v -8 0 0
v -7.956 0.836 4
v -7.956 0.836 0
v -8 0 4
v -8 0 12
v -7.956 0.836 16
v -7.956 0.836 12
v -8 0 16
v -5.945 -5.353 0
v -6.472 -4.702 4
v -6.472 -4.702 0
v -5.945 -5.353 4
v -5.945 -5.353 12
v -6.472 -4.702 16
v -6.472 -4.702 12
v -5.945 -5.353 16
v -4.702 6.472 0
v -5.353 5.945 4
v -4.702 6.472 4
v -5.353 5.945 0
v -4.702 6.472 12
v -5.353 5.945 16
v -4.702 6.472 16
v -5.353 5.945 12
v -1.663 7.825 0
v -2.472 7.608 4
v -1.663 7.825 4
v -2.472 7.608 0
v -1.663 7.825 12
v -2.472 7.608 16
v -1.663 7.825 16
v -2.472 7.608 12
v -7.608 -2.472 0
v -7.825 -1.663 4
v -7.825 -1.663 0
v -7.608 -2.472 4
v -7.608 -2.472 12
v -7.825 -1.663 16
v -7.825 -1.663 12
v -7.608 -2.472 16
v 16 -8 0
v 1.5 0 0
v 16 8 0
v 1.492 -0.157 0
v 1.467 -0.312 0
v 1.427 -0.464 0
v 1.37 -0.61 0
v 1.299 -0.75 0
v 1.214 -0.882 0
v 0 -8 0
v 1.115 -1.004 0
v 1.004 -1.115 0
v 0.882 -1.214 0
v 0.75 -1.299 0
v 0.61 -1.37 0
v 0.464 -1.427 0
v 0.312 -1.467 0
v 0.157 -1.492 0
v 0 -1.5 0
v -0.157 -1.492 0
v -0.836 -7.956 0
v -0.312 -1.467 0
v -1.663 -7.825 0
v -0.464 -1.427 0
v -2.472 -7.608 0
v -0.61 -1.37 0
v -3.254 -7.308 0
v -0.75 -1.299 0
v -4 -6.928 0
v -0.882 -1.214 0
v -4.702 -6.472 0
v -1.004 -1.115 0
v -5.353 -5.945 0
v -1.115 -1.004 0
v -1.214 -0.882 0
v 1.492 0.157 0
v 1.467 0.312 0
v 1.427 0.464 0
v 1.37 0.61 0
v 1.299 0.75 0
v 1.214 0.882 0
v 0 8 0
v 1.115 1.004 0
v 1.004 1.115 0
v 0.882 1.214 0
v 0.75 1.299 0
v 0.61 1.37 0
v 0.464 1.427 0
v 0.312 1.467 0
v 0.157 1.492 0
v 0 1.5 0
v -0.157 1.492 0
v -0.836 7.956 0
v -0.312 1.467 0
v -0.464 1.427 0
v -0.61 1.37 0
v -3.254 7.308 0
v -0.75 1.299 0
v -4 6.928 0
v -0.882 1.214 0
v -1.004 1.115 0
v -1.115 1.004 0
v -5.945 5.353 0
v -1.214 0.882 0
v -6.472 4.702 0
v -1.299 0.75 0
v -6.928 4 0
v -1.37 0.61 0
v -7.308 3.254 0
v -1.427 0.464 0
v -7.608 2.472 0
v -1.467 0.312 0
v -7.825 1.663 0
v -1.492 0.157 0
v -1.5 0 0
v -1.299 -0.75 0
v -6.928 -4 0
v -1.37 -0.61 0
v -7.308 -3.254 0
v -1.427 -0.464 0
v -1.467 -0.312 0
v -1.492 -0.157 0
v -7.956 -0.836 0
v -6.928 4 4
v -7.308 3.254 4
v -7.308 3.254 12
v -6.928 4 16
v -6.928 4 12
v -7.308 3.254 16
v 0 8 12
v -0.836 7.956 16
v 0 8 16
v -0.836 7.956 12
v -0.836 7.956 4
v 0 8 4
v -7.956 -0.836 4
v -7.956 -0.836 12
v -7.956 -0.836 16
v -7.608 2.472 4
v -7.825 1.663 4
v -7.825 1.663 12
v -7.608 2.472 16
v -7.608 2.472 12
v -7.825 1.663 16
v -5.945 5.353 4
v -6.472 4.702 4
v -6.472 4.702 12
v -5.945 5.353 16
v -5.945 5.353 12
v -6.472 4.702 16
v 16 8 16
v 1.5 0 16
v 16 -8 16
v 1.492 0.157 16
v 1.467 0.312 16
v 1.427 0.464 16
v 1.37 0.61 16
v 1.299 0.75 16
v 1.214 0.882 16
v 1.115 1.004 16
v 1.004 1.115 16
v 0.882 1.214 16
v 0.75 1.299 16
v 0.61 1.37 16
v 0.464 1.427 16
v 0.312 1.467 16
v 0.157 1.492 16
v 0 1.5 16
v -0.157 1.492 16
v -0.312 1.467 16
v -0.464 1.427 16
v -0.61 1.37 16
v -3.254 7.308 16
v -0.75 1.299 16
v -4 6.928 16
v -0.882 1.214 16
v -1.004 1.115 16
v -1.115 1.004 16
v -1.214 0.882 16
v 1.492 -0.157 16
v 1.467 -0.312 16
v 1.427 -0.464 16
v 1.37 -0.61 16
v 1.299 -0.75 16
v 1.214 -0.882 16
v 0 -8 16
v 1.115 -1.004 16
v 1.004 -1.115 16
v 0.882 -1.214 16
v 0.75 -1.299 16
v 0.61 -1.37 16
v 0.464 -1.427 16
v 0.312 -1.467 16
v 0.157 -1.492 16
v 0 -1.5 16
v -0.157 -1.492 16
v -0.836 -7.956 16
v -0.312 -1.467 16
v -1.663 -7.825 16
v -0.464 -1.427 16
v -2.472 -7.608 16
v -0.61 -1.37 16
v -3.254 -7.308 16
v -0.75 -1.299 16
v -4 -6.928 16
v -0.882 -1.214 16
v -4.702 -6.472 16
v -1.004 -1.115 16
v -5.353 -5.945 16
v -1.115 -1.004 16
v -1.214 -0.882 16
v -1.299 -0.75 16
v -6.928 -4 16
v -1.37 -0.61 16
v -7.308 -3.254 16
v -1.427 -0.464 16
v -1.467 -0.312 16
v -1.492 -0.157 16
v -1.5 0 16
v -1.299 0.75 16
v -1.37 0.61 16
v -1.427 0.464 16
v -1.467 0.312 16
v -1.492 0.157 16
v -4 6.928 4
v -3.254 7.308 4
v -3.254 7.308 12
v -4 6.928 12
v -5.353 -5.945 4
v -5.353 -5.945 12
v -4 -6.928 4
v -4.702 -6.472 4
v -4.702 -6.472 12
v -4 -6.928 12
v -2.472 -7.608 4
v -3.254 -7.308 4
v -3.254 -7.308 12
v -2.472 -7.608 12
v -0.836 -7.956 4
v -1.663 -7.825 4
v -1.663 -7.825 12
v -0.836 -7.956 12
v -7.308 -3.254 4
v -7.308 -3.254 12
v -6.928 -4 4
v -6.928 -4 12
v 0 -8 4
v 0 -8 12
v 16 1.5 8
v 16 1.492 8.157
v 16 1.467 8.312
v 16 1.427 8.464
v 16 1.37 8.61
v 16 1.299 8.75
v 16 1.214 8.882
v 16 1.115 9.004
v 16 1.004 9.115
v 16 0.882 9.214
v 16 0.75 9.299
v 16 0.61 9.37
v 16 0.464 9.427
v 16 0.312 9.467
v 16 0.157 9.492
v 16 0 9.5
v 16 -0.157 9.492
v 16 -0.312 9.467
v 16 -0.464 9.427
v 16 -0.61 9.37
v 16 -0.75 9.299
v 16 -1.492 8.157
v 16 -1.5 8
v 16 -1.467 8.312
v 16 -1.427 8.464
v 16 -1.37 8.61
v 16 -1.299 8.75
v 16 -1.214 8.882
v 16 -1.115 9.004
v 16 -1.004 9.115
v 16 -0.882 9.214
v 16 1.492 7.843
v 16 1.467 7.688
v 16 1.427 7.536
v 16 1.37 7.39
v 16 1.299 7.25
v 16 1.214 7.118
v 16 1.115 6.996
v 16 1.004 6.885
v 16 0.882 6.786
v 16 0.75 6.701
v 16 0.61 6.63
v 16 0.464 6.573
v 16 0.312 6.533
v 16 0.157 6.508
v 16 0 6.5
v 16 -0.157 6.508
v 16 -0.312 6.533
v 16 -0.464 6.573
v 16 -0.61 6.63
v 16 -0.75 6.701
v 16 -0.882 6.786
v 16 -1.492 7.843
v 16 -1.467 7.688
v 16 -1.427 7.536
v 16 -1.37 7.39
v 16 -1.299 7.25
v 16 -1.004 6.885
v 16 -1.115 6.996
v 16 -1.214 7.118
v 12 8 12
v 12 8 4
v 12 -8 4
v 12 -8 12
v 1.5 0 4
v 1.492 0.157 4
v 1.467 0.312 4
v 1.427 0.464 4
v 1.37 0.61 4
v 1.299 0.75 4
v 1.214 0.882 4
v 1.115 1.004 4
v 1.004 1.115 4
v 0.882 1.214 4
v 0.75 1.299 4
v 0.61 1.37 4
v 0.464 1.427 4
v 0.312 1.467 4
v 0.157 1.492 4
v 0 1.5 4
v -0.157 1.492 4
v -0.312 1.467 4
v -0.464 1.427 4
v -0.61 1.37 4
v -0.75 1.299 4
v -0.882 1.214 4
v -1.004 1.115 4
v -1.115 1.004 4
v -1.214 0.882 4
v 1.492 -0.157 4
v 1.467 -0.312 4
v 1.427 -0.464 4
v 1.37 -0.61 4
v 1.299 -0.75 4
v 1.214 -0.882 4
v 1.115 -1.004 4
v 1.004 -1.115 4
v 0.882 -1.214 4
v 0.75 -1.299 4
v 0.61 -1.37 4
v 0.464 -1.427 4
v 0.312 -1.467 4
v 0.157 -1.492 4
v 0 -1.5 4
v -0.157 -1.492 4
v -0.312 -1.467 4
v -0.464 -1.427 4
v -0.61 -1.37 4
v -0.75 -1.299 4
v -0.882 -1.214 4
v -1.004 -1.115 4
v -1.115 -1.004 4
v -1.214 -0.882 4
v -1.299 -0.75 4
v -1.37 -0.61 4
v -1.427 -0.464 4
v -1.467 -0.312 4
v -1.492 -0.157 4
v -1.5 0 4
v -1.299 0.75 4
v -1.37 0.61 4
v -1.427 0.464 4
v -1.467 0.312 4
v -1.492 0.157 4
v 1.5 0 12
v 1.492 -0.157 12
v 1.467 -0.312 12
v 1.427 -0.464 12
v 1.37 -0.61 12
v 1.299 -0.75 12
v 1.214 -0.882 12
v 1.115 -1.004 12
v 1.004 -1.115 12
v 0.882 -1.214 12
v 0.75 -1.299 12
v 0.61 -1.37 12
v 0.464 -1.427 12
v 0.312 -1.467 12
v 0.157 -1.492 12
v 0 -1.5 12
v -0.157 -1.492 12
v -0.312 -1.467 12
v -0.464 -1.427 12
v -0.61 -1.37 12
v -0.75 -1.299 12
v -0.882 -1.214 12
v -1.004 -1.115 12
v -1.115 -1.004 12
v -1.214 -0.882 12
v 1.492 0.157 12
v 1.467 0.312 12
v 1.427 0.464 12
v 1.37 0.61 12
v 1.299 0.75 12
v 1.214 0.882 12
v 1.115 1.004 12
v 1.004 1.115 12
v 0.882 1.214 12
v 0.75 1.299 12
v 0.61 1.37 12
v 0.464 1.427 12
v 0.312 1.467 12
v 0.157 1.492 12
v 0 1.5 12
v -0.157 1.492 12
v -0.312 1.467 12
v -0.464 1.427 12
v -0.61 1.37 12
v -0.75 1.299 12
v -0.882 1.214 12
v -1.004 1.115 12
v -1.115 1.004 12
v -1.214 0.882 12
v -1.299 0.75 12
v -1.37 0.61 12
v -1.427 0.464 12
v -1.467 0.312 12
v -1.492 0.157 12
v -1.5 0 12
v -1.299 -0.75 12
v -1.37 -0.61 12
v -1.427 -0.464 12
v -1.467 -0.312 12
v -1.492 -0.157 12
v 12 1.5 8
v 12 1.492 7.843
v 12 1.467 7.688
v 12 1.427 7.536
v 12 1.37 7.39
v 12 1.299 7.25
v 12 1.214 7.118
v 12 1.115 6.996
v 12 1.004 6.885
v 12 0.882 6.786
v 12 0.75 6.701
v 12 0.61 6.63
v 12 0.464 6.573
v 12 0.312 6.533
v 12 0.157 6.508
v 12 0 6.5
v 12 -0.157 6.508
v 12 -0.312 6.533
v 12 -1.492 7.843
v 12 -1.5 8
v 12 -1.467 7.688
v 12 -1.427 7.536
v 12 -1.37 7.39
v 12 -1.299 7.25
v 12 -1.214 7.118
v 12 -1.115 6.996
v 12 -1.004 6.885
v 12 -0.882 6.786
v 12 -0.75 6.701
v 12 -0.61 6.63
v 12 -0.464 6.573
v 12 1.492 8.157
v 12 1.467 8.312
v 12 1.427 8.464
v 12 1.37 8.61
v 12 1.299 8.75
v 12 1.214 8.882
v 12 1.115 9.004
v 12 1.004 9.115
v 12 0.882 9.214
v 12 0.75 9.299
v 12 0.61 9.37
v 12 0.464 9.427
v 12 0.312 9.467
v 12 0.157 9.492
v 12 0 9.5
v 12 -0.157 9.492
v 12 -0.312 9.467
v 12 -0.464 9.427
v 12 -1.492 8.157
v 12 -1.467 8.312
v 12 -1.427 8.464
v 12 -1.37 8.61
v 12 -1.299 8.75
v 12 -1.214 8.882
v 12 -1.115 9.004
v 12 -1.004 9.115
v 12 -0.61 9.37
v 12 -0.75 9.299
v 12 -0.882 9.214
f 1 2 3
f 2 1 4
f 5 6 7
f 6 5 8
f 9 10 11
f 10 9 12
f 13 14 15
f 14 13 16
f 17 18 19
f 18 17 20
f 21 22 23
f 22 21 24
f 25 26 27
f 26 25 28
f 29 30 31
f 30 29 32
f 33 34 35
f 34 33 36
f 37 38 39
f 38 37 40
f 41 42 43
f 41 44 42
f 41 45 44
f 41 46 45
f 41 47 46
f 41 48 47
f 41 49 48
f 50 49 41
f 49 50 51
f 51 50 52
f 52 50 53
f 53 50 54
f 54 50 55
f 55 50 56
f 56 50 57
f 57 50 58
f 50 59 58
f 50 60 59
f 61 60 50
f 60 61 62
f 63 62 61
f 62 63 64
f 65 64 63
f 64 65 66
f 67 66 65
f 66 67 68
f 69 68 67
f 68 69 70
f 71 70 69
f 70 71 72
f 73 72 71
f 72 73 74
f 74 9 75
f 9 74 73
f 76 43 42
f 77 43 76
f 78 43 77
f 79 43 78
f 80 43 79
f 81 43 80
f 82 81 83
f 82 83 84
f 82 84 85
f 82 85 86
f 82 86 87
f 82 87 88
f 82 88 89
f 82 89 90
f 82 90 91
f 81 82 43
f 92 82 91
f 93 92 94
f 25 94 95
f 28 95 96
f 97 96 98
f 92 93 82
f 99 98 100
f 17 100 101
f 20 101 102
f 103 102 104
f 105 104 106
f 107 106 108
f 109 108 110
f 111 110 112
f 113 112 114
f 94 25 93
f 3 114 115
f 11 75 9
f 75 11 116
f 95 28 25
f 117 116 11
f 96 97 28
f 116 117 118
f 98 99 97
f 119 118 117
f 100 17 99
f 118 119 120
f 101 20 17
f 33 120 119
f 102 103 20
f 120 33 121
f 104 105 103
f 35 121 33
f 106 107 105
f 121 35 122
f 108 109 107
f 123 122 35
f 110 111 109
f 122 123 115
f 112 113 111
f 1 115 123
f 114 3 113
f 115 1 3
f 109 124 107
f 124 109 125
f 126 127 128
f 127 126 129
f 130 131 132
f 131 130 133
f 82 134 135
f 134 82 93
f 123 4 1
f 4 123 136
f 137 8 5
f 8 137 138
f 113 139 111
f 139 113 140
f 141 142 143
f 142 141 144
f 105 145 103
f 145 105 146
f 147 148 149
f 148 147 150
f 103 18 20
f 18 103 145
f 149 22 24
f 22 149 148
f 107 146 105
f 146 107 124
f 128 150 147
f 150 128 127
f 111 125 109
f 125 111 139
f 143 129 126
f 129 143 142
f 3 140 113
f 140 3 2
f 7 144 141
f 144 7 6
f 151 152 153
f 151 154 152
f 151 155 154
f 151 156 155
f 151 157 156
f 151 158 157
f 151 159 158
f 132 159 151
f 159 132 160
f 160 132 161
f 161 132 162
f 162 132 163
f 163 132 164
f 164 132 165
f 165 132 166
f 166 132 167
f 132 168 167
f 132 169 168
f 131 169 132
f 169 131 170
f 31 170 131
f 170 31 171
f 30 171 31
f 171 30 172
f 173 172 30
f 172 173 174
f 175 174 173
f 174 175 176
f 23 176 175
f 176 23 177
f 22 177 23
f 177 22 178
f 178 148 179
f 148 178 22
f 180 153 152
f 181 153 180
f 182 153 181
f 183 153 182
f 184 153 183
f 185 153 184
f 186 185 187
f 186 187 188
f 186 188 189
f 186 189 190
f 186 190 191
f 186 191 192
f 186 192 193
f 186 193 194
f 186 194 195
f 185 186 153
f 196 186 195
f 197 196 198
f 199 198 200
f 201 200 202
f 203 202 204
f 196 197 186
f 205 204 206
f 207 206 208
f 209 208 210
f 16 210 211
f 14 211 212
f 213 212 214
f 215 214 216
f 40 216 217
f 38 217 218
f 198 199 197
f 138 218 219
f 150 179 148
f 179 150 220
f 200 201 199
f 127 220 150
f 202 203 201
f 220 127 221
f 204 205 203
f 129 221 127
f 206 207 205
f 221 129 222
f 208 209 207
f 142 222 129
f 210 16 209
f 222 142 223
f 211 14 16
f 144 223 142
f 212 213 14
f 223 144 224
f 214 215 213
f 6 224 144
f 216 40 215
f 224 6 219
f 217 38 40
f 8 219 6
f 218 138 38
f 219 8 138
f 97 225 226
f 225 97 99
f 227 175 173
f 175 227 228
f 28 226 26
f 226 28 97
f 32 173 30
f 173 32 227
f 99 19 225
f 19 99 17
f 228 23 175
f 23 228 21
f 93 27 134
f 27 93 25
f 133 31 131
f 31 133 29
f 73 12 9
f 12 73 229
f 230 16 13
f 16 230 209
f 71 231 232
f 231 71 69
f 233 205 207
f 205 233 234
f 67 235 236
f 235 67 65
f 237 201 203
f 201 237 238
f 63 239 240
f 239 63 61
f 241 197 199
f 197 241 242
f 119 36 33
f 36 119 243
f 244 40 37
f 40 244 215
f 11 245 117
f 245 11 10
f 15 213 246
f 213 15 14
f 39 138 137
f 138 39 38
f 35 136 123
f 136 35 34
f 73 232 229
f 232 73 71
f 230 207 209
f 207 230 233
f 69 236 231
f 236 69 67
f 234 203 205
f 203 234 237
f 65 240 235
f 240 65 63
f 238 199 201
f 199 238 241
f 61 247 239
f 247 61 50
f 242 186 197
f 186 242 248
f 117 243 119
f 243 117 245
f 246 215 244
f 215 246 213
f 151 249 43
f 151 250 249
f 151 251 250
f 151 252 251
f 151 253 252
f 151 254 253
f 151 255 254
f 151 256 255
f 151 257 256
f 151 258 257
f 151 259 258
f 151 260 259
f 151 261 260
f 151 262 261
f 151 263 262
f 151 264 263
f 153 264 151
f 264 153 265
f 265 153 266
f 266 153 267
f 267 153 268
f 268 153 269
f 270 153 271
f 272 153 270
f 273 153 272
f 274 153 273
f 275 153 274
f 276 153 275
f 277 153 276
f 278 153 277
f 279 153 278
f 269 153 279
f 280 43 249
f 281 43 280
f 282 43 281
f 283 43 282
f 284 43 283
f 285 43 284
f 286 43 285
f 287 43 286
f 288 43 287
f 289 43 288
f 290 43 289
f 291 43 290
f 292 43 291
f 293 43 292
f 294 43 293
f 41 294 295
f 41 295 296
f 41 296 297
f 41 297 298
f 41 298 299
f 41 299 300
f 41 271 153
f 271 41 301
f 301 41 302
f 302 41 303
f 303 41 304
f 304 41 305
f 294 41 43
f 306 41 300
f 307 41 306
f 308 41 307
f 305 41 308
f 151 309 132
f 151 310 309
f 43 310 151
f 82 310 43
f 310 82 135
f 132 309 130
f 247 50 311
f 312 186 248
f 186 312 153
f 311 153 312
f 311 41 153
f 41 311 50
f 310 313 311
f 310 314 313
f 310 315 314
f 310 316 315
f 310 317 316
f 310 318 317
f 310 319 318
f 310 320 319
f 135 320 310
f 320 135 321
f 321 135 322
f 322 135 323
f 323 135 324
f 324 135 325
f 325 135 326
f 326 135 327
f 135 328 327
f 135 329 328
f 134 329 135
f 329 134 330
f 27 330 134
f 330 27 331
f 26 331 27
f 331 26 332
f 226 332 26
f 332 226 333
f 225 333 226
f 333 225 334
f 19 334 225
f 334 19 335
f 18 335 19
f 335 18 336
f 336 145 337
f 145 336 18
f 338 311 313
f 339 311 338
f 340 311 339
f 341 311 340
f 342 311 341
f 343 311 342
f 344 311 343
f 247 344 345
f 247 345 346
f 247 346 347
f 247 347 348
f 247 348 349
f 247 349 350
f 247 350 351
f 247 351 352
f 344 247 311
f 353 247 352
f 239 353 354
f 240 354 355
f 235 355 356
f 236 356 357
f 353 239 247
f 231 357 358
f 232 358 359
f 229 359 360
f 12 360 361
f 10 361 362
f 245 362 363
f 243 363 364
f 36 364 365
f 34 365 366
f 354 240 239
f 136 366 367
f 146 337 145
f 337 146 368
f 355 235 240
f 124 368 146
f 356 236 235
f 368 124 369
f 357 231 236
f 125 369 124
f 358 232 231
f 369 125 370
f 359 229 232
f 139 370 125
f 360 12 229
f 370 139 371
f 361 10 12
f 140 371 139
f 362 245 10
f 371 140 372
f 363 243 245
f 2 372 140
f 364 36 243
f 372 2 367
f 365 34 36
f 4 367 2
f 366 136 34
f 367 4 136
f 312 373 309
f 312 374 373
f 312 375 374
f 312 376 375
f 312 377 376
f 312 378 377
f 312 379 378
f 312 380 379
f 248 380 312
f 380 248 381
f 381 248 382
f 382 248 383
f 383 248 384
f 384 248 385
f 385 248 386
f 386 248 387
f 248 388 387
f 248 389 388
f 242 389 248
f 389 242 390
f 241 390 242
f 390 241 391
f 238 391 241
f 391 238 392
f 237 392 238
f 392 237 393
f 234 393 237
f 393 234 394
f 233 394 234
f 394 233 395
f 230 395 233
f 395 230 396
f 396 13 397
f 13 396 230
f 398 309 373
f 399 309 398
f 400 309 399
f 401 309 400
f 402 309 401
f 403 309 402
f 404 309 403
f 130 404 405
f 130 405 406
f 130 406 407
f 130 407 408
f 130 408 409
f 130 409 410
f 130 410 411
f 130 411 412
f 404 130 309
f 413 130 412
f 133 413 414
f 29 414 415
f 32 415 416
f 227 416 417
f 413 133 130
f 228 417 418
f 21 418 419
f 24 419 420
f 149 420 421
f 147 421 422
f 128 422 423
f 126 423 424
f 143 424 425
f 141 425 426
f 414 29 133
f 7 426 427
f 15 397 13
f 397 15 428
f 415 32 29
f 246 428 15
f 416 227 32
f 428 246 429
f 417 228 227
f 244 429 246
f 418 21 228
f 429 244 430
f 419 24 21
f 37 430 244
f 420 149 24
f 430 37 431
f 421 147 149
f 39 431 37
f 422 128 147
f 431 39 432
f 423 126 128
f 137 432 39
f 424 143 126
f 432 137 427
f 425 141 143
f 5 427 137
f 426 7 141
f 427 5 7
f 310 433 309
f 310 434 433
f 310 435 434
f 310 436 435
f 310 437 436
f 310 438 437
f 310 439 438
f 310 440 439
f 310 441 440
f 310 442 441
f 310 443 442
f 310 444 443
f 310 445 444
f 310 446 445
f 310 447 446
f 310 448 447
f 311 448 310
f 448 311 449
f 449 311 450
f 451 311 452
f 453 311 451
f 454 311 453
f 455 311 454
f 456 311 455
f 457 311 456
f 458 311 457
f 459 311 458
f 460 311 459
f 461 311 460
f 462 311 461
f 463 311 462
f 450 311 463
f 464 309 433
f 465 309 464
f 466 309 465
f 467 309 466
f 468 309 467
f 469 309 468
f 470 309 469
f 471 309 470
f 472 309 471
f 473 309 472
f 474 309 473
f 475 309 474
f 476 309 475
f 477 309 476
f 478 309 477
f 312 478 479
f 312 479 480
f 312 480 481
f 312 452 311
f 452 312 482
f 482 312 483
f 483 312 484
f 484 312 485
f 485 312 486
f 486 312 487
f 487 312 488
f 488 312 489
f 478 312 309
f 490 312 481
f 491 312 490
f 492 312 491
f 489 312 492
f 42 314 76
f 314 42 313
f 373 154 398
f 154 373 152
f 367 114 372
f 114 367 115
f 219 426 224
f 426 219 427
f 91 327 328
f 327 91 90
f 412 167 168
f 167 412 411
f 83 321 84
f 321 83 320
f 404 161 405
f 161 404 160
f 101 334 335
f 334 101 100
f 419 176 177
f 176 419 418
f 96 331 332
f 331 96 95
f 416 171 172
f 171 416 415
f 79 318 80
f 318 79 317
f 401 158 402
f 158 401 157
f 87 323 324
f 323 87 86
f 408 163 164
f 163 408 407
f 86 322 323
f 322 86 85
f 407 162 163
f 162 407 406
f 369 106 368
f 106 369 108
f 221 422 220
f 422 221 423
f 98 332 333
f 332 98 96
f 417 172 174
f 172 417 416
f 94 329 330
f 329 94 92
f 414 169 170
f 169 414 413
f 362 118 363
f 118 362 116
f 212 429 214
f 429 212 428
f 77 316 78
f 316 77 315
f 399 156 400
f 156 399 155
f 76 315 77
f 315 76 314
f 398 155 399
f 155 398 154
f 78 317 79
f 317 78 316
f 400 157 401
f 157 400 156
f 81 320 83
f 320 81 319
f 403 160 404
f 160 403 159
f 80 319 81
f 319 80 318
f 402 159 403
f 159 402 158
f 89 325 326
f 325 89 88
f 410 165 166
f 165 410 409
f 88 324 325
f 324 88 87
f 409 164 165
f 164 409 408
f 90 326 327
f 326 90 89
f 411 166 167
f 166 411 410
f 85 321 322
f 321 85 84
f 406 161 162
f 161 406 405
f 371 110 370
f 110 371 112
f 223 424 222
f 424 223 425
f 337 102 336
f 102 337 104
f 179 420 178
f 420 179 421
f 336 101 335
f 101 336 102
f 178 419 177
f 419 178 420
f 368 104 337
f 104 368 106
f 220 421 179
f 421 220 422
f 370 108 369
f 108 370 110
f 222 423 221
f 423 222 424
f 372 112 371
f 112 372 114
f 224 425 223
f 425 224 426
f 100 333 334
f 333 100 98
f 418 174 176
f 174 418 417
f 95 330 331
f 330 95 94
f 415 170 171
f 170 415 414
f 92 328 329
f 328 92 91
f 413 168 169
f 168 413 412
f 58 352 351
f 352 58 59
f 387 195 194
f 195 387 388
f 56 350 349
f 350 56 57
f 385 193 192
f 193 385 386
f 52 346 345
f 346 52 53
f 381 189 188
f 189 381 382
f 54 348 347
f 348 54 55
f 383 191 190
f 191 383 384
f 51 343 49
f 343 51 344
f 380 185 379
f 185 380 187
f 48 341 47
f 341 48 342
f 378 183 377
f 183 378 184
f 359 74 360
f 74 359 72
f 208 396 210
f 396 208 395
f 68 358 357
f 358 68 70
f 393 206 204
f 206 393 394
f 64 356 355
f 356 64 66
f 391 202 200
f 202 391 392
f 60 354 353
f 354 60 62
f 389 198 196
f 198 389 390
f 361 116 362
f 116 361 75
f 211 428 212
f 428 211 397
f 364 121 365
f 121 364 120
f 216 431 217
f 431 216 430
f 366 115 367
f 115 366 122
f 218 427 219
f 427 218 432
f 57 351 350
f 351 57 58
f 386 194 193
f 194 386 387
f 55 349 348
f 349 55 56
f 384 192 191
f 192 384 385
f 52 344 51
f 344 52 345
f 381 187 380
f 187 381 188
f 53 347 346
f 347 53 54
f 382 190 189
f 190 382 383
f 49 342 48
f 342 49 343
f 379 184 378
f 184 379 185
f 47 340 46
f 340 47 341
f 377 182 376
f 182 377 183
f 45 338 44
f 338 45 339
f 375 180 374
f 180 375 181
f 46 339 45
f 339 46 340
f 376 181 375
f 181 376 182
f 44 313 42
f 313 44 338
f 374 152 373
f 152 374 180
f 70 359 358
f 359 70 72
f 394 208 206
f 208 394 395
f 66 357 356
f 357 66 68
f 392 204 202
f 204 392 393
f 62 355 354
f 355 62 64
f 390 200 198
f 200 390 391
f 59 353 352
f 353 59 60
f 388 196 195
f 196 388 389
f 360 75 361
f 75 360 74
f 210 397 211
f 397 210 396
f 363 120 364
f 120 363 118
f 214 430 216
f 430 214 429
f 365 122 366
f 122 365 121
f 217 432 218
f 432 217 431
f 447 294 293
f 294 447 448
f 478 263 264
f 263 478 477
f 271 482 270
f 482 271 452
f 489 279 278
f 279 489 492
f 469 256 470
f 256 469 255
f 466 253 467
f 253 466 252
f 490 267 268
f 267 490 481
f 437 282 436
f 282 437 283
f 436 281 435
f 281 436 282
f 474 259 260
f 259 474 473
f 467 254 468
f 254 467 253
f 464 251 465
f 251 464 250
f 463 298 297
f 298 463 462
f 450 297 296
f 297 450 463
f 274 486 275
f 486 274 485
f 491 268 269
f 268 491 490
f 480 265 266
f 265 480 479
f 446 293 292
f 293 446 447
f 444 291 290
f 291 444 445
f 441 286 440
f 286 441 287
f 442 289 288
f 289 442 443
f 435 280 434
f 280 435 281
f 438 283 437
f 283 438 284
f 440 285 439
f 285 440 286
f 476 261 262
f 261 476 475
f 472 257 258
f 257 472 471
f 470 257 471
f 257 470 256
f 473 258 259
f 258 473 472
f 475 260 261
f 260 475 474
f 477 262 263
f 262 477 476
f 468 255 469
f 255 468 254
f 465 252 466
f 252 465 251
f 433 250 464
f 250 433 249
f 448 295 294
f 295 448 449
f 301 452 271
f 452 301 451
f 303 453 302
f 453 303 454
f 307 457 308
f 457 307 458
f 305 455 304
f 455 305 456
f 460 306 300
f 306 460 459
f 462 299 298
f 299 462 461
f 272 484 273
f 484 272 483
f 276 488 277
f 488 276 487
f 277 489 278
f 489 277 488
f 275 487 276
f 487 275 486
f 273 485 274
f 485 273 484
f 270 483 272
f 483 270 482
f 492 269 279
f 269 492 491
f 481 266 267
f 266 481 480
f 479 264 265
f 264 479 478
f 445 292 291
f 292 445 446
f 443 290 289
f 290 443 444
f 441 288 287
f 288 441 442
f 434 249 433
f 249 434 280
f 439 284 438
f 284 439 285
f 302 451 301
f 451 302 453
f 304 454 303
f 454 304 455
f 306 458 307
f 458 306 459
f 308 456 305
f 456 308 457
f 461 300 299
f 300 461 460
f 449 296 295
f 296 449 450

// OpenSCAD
$fn=60;

difference(){
union(){
cylinder(d=16,h=16);
translate([0,-8,0])cube(16);
}
translate([0,0,4])cylinder(d=16,h=8);
translate([-4,-8,4])cube([16,16,8]);
cylinder(d=3,h=20);
translate([0,0,8])rotate([0,90,0])
cylinder(d=3,h=20);
}
